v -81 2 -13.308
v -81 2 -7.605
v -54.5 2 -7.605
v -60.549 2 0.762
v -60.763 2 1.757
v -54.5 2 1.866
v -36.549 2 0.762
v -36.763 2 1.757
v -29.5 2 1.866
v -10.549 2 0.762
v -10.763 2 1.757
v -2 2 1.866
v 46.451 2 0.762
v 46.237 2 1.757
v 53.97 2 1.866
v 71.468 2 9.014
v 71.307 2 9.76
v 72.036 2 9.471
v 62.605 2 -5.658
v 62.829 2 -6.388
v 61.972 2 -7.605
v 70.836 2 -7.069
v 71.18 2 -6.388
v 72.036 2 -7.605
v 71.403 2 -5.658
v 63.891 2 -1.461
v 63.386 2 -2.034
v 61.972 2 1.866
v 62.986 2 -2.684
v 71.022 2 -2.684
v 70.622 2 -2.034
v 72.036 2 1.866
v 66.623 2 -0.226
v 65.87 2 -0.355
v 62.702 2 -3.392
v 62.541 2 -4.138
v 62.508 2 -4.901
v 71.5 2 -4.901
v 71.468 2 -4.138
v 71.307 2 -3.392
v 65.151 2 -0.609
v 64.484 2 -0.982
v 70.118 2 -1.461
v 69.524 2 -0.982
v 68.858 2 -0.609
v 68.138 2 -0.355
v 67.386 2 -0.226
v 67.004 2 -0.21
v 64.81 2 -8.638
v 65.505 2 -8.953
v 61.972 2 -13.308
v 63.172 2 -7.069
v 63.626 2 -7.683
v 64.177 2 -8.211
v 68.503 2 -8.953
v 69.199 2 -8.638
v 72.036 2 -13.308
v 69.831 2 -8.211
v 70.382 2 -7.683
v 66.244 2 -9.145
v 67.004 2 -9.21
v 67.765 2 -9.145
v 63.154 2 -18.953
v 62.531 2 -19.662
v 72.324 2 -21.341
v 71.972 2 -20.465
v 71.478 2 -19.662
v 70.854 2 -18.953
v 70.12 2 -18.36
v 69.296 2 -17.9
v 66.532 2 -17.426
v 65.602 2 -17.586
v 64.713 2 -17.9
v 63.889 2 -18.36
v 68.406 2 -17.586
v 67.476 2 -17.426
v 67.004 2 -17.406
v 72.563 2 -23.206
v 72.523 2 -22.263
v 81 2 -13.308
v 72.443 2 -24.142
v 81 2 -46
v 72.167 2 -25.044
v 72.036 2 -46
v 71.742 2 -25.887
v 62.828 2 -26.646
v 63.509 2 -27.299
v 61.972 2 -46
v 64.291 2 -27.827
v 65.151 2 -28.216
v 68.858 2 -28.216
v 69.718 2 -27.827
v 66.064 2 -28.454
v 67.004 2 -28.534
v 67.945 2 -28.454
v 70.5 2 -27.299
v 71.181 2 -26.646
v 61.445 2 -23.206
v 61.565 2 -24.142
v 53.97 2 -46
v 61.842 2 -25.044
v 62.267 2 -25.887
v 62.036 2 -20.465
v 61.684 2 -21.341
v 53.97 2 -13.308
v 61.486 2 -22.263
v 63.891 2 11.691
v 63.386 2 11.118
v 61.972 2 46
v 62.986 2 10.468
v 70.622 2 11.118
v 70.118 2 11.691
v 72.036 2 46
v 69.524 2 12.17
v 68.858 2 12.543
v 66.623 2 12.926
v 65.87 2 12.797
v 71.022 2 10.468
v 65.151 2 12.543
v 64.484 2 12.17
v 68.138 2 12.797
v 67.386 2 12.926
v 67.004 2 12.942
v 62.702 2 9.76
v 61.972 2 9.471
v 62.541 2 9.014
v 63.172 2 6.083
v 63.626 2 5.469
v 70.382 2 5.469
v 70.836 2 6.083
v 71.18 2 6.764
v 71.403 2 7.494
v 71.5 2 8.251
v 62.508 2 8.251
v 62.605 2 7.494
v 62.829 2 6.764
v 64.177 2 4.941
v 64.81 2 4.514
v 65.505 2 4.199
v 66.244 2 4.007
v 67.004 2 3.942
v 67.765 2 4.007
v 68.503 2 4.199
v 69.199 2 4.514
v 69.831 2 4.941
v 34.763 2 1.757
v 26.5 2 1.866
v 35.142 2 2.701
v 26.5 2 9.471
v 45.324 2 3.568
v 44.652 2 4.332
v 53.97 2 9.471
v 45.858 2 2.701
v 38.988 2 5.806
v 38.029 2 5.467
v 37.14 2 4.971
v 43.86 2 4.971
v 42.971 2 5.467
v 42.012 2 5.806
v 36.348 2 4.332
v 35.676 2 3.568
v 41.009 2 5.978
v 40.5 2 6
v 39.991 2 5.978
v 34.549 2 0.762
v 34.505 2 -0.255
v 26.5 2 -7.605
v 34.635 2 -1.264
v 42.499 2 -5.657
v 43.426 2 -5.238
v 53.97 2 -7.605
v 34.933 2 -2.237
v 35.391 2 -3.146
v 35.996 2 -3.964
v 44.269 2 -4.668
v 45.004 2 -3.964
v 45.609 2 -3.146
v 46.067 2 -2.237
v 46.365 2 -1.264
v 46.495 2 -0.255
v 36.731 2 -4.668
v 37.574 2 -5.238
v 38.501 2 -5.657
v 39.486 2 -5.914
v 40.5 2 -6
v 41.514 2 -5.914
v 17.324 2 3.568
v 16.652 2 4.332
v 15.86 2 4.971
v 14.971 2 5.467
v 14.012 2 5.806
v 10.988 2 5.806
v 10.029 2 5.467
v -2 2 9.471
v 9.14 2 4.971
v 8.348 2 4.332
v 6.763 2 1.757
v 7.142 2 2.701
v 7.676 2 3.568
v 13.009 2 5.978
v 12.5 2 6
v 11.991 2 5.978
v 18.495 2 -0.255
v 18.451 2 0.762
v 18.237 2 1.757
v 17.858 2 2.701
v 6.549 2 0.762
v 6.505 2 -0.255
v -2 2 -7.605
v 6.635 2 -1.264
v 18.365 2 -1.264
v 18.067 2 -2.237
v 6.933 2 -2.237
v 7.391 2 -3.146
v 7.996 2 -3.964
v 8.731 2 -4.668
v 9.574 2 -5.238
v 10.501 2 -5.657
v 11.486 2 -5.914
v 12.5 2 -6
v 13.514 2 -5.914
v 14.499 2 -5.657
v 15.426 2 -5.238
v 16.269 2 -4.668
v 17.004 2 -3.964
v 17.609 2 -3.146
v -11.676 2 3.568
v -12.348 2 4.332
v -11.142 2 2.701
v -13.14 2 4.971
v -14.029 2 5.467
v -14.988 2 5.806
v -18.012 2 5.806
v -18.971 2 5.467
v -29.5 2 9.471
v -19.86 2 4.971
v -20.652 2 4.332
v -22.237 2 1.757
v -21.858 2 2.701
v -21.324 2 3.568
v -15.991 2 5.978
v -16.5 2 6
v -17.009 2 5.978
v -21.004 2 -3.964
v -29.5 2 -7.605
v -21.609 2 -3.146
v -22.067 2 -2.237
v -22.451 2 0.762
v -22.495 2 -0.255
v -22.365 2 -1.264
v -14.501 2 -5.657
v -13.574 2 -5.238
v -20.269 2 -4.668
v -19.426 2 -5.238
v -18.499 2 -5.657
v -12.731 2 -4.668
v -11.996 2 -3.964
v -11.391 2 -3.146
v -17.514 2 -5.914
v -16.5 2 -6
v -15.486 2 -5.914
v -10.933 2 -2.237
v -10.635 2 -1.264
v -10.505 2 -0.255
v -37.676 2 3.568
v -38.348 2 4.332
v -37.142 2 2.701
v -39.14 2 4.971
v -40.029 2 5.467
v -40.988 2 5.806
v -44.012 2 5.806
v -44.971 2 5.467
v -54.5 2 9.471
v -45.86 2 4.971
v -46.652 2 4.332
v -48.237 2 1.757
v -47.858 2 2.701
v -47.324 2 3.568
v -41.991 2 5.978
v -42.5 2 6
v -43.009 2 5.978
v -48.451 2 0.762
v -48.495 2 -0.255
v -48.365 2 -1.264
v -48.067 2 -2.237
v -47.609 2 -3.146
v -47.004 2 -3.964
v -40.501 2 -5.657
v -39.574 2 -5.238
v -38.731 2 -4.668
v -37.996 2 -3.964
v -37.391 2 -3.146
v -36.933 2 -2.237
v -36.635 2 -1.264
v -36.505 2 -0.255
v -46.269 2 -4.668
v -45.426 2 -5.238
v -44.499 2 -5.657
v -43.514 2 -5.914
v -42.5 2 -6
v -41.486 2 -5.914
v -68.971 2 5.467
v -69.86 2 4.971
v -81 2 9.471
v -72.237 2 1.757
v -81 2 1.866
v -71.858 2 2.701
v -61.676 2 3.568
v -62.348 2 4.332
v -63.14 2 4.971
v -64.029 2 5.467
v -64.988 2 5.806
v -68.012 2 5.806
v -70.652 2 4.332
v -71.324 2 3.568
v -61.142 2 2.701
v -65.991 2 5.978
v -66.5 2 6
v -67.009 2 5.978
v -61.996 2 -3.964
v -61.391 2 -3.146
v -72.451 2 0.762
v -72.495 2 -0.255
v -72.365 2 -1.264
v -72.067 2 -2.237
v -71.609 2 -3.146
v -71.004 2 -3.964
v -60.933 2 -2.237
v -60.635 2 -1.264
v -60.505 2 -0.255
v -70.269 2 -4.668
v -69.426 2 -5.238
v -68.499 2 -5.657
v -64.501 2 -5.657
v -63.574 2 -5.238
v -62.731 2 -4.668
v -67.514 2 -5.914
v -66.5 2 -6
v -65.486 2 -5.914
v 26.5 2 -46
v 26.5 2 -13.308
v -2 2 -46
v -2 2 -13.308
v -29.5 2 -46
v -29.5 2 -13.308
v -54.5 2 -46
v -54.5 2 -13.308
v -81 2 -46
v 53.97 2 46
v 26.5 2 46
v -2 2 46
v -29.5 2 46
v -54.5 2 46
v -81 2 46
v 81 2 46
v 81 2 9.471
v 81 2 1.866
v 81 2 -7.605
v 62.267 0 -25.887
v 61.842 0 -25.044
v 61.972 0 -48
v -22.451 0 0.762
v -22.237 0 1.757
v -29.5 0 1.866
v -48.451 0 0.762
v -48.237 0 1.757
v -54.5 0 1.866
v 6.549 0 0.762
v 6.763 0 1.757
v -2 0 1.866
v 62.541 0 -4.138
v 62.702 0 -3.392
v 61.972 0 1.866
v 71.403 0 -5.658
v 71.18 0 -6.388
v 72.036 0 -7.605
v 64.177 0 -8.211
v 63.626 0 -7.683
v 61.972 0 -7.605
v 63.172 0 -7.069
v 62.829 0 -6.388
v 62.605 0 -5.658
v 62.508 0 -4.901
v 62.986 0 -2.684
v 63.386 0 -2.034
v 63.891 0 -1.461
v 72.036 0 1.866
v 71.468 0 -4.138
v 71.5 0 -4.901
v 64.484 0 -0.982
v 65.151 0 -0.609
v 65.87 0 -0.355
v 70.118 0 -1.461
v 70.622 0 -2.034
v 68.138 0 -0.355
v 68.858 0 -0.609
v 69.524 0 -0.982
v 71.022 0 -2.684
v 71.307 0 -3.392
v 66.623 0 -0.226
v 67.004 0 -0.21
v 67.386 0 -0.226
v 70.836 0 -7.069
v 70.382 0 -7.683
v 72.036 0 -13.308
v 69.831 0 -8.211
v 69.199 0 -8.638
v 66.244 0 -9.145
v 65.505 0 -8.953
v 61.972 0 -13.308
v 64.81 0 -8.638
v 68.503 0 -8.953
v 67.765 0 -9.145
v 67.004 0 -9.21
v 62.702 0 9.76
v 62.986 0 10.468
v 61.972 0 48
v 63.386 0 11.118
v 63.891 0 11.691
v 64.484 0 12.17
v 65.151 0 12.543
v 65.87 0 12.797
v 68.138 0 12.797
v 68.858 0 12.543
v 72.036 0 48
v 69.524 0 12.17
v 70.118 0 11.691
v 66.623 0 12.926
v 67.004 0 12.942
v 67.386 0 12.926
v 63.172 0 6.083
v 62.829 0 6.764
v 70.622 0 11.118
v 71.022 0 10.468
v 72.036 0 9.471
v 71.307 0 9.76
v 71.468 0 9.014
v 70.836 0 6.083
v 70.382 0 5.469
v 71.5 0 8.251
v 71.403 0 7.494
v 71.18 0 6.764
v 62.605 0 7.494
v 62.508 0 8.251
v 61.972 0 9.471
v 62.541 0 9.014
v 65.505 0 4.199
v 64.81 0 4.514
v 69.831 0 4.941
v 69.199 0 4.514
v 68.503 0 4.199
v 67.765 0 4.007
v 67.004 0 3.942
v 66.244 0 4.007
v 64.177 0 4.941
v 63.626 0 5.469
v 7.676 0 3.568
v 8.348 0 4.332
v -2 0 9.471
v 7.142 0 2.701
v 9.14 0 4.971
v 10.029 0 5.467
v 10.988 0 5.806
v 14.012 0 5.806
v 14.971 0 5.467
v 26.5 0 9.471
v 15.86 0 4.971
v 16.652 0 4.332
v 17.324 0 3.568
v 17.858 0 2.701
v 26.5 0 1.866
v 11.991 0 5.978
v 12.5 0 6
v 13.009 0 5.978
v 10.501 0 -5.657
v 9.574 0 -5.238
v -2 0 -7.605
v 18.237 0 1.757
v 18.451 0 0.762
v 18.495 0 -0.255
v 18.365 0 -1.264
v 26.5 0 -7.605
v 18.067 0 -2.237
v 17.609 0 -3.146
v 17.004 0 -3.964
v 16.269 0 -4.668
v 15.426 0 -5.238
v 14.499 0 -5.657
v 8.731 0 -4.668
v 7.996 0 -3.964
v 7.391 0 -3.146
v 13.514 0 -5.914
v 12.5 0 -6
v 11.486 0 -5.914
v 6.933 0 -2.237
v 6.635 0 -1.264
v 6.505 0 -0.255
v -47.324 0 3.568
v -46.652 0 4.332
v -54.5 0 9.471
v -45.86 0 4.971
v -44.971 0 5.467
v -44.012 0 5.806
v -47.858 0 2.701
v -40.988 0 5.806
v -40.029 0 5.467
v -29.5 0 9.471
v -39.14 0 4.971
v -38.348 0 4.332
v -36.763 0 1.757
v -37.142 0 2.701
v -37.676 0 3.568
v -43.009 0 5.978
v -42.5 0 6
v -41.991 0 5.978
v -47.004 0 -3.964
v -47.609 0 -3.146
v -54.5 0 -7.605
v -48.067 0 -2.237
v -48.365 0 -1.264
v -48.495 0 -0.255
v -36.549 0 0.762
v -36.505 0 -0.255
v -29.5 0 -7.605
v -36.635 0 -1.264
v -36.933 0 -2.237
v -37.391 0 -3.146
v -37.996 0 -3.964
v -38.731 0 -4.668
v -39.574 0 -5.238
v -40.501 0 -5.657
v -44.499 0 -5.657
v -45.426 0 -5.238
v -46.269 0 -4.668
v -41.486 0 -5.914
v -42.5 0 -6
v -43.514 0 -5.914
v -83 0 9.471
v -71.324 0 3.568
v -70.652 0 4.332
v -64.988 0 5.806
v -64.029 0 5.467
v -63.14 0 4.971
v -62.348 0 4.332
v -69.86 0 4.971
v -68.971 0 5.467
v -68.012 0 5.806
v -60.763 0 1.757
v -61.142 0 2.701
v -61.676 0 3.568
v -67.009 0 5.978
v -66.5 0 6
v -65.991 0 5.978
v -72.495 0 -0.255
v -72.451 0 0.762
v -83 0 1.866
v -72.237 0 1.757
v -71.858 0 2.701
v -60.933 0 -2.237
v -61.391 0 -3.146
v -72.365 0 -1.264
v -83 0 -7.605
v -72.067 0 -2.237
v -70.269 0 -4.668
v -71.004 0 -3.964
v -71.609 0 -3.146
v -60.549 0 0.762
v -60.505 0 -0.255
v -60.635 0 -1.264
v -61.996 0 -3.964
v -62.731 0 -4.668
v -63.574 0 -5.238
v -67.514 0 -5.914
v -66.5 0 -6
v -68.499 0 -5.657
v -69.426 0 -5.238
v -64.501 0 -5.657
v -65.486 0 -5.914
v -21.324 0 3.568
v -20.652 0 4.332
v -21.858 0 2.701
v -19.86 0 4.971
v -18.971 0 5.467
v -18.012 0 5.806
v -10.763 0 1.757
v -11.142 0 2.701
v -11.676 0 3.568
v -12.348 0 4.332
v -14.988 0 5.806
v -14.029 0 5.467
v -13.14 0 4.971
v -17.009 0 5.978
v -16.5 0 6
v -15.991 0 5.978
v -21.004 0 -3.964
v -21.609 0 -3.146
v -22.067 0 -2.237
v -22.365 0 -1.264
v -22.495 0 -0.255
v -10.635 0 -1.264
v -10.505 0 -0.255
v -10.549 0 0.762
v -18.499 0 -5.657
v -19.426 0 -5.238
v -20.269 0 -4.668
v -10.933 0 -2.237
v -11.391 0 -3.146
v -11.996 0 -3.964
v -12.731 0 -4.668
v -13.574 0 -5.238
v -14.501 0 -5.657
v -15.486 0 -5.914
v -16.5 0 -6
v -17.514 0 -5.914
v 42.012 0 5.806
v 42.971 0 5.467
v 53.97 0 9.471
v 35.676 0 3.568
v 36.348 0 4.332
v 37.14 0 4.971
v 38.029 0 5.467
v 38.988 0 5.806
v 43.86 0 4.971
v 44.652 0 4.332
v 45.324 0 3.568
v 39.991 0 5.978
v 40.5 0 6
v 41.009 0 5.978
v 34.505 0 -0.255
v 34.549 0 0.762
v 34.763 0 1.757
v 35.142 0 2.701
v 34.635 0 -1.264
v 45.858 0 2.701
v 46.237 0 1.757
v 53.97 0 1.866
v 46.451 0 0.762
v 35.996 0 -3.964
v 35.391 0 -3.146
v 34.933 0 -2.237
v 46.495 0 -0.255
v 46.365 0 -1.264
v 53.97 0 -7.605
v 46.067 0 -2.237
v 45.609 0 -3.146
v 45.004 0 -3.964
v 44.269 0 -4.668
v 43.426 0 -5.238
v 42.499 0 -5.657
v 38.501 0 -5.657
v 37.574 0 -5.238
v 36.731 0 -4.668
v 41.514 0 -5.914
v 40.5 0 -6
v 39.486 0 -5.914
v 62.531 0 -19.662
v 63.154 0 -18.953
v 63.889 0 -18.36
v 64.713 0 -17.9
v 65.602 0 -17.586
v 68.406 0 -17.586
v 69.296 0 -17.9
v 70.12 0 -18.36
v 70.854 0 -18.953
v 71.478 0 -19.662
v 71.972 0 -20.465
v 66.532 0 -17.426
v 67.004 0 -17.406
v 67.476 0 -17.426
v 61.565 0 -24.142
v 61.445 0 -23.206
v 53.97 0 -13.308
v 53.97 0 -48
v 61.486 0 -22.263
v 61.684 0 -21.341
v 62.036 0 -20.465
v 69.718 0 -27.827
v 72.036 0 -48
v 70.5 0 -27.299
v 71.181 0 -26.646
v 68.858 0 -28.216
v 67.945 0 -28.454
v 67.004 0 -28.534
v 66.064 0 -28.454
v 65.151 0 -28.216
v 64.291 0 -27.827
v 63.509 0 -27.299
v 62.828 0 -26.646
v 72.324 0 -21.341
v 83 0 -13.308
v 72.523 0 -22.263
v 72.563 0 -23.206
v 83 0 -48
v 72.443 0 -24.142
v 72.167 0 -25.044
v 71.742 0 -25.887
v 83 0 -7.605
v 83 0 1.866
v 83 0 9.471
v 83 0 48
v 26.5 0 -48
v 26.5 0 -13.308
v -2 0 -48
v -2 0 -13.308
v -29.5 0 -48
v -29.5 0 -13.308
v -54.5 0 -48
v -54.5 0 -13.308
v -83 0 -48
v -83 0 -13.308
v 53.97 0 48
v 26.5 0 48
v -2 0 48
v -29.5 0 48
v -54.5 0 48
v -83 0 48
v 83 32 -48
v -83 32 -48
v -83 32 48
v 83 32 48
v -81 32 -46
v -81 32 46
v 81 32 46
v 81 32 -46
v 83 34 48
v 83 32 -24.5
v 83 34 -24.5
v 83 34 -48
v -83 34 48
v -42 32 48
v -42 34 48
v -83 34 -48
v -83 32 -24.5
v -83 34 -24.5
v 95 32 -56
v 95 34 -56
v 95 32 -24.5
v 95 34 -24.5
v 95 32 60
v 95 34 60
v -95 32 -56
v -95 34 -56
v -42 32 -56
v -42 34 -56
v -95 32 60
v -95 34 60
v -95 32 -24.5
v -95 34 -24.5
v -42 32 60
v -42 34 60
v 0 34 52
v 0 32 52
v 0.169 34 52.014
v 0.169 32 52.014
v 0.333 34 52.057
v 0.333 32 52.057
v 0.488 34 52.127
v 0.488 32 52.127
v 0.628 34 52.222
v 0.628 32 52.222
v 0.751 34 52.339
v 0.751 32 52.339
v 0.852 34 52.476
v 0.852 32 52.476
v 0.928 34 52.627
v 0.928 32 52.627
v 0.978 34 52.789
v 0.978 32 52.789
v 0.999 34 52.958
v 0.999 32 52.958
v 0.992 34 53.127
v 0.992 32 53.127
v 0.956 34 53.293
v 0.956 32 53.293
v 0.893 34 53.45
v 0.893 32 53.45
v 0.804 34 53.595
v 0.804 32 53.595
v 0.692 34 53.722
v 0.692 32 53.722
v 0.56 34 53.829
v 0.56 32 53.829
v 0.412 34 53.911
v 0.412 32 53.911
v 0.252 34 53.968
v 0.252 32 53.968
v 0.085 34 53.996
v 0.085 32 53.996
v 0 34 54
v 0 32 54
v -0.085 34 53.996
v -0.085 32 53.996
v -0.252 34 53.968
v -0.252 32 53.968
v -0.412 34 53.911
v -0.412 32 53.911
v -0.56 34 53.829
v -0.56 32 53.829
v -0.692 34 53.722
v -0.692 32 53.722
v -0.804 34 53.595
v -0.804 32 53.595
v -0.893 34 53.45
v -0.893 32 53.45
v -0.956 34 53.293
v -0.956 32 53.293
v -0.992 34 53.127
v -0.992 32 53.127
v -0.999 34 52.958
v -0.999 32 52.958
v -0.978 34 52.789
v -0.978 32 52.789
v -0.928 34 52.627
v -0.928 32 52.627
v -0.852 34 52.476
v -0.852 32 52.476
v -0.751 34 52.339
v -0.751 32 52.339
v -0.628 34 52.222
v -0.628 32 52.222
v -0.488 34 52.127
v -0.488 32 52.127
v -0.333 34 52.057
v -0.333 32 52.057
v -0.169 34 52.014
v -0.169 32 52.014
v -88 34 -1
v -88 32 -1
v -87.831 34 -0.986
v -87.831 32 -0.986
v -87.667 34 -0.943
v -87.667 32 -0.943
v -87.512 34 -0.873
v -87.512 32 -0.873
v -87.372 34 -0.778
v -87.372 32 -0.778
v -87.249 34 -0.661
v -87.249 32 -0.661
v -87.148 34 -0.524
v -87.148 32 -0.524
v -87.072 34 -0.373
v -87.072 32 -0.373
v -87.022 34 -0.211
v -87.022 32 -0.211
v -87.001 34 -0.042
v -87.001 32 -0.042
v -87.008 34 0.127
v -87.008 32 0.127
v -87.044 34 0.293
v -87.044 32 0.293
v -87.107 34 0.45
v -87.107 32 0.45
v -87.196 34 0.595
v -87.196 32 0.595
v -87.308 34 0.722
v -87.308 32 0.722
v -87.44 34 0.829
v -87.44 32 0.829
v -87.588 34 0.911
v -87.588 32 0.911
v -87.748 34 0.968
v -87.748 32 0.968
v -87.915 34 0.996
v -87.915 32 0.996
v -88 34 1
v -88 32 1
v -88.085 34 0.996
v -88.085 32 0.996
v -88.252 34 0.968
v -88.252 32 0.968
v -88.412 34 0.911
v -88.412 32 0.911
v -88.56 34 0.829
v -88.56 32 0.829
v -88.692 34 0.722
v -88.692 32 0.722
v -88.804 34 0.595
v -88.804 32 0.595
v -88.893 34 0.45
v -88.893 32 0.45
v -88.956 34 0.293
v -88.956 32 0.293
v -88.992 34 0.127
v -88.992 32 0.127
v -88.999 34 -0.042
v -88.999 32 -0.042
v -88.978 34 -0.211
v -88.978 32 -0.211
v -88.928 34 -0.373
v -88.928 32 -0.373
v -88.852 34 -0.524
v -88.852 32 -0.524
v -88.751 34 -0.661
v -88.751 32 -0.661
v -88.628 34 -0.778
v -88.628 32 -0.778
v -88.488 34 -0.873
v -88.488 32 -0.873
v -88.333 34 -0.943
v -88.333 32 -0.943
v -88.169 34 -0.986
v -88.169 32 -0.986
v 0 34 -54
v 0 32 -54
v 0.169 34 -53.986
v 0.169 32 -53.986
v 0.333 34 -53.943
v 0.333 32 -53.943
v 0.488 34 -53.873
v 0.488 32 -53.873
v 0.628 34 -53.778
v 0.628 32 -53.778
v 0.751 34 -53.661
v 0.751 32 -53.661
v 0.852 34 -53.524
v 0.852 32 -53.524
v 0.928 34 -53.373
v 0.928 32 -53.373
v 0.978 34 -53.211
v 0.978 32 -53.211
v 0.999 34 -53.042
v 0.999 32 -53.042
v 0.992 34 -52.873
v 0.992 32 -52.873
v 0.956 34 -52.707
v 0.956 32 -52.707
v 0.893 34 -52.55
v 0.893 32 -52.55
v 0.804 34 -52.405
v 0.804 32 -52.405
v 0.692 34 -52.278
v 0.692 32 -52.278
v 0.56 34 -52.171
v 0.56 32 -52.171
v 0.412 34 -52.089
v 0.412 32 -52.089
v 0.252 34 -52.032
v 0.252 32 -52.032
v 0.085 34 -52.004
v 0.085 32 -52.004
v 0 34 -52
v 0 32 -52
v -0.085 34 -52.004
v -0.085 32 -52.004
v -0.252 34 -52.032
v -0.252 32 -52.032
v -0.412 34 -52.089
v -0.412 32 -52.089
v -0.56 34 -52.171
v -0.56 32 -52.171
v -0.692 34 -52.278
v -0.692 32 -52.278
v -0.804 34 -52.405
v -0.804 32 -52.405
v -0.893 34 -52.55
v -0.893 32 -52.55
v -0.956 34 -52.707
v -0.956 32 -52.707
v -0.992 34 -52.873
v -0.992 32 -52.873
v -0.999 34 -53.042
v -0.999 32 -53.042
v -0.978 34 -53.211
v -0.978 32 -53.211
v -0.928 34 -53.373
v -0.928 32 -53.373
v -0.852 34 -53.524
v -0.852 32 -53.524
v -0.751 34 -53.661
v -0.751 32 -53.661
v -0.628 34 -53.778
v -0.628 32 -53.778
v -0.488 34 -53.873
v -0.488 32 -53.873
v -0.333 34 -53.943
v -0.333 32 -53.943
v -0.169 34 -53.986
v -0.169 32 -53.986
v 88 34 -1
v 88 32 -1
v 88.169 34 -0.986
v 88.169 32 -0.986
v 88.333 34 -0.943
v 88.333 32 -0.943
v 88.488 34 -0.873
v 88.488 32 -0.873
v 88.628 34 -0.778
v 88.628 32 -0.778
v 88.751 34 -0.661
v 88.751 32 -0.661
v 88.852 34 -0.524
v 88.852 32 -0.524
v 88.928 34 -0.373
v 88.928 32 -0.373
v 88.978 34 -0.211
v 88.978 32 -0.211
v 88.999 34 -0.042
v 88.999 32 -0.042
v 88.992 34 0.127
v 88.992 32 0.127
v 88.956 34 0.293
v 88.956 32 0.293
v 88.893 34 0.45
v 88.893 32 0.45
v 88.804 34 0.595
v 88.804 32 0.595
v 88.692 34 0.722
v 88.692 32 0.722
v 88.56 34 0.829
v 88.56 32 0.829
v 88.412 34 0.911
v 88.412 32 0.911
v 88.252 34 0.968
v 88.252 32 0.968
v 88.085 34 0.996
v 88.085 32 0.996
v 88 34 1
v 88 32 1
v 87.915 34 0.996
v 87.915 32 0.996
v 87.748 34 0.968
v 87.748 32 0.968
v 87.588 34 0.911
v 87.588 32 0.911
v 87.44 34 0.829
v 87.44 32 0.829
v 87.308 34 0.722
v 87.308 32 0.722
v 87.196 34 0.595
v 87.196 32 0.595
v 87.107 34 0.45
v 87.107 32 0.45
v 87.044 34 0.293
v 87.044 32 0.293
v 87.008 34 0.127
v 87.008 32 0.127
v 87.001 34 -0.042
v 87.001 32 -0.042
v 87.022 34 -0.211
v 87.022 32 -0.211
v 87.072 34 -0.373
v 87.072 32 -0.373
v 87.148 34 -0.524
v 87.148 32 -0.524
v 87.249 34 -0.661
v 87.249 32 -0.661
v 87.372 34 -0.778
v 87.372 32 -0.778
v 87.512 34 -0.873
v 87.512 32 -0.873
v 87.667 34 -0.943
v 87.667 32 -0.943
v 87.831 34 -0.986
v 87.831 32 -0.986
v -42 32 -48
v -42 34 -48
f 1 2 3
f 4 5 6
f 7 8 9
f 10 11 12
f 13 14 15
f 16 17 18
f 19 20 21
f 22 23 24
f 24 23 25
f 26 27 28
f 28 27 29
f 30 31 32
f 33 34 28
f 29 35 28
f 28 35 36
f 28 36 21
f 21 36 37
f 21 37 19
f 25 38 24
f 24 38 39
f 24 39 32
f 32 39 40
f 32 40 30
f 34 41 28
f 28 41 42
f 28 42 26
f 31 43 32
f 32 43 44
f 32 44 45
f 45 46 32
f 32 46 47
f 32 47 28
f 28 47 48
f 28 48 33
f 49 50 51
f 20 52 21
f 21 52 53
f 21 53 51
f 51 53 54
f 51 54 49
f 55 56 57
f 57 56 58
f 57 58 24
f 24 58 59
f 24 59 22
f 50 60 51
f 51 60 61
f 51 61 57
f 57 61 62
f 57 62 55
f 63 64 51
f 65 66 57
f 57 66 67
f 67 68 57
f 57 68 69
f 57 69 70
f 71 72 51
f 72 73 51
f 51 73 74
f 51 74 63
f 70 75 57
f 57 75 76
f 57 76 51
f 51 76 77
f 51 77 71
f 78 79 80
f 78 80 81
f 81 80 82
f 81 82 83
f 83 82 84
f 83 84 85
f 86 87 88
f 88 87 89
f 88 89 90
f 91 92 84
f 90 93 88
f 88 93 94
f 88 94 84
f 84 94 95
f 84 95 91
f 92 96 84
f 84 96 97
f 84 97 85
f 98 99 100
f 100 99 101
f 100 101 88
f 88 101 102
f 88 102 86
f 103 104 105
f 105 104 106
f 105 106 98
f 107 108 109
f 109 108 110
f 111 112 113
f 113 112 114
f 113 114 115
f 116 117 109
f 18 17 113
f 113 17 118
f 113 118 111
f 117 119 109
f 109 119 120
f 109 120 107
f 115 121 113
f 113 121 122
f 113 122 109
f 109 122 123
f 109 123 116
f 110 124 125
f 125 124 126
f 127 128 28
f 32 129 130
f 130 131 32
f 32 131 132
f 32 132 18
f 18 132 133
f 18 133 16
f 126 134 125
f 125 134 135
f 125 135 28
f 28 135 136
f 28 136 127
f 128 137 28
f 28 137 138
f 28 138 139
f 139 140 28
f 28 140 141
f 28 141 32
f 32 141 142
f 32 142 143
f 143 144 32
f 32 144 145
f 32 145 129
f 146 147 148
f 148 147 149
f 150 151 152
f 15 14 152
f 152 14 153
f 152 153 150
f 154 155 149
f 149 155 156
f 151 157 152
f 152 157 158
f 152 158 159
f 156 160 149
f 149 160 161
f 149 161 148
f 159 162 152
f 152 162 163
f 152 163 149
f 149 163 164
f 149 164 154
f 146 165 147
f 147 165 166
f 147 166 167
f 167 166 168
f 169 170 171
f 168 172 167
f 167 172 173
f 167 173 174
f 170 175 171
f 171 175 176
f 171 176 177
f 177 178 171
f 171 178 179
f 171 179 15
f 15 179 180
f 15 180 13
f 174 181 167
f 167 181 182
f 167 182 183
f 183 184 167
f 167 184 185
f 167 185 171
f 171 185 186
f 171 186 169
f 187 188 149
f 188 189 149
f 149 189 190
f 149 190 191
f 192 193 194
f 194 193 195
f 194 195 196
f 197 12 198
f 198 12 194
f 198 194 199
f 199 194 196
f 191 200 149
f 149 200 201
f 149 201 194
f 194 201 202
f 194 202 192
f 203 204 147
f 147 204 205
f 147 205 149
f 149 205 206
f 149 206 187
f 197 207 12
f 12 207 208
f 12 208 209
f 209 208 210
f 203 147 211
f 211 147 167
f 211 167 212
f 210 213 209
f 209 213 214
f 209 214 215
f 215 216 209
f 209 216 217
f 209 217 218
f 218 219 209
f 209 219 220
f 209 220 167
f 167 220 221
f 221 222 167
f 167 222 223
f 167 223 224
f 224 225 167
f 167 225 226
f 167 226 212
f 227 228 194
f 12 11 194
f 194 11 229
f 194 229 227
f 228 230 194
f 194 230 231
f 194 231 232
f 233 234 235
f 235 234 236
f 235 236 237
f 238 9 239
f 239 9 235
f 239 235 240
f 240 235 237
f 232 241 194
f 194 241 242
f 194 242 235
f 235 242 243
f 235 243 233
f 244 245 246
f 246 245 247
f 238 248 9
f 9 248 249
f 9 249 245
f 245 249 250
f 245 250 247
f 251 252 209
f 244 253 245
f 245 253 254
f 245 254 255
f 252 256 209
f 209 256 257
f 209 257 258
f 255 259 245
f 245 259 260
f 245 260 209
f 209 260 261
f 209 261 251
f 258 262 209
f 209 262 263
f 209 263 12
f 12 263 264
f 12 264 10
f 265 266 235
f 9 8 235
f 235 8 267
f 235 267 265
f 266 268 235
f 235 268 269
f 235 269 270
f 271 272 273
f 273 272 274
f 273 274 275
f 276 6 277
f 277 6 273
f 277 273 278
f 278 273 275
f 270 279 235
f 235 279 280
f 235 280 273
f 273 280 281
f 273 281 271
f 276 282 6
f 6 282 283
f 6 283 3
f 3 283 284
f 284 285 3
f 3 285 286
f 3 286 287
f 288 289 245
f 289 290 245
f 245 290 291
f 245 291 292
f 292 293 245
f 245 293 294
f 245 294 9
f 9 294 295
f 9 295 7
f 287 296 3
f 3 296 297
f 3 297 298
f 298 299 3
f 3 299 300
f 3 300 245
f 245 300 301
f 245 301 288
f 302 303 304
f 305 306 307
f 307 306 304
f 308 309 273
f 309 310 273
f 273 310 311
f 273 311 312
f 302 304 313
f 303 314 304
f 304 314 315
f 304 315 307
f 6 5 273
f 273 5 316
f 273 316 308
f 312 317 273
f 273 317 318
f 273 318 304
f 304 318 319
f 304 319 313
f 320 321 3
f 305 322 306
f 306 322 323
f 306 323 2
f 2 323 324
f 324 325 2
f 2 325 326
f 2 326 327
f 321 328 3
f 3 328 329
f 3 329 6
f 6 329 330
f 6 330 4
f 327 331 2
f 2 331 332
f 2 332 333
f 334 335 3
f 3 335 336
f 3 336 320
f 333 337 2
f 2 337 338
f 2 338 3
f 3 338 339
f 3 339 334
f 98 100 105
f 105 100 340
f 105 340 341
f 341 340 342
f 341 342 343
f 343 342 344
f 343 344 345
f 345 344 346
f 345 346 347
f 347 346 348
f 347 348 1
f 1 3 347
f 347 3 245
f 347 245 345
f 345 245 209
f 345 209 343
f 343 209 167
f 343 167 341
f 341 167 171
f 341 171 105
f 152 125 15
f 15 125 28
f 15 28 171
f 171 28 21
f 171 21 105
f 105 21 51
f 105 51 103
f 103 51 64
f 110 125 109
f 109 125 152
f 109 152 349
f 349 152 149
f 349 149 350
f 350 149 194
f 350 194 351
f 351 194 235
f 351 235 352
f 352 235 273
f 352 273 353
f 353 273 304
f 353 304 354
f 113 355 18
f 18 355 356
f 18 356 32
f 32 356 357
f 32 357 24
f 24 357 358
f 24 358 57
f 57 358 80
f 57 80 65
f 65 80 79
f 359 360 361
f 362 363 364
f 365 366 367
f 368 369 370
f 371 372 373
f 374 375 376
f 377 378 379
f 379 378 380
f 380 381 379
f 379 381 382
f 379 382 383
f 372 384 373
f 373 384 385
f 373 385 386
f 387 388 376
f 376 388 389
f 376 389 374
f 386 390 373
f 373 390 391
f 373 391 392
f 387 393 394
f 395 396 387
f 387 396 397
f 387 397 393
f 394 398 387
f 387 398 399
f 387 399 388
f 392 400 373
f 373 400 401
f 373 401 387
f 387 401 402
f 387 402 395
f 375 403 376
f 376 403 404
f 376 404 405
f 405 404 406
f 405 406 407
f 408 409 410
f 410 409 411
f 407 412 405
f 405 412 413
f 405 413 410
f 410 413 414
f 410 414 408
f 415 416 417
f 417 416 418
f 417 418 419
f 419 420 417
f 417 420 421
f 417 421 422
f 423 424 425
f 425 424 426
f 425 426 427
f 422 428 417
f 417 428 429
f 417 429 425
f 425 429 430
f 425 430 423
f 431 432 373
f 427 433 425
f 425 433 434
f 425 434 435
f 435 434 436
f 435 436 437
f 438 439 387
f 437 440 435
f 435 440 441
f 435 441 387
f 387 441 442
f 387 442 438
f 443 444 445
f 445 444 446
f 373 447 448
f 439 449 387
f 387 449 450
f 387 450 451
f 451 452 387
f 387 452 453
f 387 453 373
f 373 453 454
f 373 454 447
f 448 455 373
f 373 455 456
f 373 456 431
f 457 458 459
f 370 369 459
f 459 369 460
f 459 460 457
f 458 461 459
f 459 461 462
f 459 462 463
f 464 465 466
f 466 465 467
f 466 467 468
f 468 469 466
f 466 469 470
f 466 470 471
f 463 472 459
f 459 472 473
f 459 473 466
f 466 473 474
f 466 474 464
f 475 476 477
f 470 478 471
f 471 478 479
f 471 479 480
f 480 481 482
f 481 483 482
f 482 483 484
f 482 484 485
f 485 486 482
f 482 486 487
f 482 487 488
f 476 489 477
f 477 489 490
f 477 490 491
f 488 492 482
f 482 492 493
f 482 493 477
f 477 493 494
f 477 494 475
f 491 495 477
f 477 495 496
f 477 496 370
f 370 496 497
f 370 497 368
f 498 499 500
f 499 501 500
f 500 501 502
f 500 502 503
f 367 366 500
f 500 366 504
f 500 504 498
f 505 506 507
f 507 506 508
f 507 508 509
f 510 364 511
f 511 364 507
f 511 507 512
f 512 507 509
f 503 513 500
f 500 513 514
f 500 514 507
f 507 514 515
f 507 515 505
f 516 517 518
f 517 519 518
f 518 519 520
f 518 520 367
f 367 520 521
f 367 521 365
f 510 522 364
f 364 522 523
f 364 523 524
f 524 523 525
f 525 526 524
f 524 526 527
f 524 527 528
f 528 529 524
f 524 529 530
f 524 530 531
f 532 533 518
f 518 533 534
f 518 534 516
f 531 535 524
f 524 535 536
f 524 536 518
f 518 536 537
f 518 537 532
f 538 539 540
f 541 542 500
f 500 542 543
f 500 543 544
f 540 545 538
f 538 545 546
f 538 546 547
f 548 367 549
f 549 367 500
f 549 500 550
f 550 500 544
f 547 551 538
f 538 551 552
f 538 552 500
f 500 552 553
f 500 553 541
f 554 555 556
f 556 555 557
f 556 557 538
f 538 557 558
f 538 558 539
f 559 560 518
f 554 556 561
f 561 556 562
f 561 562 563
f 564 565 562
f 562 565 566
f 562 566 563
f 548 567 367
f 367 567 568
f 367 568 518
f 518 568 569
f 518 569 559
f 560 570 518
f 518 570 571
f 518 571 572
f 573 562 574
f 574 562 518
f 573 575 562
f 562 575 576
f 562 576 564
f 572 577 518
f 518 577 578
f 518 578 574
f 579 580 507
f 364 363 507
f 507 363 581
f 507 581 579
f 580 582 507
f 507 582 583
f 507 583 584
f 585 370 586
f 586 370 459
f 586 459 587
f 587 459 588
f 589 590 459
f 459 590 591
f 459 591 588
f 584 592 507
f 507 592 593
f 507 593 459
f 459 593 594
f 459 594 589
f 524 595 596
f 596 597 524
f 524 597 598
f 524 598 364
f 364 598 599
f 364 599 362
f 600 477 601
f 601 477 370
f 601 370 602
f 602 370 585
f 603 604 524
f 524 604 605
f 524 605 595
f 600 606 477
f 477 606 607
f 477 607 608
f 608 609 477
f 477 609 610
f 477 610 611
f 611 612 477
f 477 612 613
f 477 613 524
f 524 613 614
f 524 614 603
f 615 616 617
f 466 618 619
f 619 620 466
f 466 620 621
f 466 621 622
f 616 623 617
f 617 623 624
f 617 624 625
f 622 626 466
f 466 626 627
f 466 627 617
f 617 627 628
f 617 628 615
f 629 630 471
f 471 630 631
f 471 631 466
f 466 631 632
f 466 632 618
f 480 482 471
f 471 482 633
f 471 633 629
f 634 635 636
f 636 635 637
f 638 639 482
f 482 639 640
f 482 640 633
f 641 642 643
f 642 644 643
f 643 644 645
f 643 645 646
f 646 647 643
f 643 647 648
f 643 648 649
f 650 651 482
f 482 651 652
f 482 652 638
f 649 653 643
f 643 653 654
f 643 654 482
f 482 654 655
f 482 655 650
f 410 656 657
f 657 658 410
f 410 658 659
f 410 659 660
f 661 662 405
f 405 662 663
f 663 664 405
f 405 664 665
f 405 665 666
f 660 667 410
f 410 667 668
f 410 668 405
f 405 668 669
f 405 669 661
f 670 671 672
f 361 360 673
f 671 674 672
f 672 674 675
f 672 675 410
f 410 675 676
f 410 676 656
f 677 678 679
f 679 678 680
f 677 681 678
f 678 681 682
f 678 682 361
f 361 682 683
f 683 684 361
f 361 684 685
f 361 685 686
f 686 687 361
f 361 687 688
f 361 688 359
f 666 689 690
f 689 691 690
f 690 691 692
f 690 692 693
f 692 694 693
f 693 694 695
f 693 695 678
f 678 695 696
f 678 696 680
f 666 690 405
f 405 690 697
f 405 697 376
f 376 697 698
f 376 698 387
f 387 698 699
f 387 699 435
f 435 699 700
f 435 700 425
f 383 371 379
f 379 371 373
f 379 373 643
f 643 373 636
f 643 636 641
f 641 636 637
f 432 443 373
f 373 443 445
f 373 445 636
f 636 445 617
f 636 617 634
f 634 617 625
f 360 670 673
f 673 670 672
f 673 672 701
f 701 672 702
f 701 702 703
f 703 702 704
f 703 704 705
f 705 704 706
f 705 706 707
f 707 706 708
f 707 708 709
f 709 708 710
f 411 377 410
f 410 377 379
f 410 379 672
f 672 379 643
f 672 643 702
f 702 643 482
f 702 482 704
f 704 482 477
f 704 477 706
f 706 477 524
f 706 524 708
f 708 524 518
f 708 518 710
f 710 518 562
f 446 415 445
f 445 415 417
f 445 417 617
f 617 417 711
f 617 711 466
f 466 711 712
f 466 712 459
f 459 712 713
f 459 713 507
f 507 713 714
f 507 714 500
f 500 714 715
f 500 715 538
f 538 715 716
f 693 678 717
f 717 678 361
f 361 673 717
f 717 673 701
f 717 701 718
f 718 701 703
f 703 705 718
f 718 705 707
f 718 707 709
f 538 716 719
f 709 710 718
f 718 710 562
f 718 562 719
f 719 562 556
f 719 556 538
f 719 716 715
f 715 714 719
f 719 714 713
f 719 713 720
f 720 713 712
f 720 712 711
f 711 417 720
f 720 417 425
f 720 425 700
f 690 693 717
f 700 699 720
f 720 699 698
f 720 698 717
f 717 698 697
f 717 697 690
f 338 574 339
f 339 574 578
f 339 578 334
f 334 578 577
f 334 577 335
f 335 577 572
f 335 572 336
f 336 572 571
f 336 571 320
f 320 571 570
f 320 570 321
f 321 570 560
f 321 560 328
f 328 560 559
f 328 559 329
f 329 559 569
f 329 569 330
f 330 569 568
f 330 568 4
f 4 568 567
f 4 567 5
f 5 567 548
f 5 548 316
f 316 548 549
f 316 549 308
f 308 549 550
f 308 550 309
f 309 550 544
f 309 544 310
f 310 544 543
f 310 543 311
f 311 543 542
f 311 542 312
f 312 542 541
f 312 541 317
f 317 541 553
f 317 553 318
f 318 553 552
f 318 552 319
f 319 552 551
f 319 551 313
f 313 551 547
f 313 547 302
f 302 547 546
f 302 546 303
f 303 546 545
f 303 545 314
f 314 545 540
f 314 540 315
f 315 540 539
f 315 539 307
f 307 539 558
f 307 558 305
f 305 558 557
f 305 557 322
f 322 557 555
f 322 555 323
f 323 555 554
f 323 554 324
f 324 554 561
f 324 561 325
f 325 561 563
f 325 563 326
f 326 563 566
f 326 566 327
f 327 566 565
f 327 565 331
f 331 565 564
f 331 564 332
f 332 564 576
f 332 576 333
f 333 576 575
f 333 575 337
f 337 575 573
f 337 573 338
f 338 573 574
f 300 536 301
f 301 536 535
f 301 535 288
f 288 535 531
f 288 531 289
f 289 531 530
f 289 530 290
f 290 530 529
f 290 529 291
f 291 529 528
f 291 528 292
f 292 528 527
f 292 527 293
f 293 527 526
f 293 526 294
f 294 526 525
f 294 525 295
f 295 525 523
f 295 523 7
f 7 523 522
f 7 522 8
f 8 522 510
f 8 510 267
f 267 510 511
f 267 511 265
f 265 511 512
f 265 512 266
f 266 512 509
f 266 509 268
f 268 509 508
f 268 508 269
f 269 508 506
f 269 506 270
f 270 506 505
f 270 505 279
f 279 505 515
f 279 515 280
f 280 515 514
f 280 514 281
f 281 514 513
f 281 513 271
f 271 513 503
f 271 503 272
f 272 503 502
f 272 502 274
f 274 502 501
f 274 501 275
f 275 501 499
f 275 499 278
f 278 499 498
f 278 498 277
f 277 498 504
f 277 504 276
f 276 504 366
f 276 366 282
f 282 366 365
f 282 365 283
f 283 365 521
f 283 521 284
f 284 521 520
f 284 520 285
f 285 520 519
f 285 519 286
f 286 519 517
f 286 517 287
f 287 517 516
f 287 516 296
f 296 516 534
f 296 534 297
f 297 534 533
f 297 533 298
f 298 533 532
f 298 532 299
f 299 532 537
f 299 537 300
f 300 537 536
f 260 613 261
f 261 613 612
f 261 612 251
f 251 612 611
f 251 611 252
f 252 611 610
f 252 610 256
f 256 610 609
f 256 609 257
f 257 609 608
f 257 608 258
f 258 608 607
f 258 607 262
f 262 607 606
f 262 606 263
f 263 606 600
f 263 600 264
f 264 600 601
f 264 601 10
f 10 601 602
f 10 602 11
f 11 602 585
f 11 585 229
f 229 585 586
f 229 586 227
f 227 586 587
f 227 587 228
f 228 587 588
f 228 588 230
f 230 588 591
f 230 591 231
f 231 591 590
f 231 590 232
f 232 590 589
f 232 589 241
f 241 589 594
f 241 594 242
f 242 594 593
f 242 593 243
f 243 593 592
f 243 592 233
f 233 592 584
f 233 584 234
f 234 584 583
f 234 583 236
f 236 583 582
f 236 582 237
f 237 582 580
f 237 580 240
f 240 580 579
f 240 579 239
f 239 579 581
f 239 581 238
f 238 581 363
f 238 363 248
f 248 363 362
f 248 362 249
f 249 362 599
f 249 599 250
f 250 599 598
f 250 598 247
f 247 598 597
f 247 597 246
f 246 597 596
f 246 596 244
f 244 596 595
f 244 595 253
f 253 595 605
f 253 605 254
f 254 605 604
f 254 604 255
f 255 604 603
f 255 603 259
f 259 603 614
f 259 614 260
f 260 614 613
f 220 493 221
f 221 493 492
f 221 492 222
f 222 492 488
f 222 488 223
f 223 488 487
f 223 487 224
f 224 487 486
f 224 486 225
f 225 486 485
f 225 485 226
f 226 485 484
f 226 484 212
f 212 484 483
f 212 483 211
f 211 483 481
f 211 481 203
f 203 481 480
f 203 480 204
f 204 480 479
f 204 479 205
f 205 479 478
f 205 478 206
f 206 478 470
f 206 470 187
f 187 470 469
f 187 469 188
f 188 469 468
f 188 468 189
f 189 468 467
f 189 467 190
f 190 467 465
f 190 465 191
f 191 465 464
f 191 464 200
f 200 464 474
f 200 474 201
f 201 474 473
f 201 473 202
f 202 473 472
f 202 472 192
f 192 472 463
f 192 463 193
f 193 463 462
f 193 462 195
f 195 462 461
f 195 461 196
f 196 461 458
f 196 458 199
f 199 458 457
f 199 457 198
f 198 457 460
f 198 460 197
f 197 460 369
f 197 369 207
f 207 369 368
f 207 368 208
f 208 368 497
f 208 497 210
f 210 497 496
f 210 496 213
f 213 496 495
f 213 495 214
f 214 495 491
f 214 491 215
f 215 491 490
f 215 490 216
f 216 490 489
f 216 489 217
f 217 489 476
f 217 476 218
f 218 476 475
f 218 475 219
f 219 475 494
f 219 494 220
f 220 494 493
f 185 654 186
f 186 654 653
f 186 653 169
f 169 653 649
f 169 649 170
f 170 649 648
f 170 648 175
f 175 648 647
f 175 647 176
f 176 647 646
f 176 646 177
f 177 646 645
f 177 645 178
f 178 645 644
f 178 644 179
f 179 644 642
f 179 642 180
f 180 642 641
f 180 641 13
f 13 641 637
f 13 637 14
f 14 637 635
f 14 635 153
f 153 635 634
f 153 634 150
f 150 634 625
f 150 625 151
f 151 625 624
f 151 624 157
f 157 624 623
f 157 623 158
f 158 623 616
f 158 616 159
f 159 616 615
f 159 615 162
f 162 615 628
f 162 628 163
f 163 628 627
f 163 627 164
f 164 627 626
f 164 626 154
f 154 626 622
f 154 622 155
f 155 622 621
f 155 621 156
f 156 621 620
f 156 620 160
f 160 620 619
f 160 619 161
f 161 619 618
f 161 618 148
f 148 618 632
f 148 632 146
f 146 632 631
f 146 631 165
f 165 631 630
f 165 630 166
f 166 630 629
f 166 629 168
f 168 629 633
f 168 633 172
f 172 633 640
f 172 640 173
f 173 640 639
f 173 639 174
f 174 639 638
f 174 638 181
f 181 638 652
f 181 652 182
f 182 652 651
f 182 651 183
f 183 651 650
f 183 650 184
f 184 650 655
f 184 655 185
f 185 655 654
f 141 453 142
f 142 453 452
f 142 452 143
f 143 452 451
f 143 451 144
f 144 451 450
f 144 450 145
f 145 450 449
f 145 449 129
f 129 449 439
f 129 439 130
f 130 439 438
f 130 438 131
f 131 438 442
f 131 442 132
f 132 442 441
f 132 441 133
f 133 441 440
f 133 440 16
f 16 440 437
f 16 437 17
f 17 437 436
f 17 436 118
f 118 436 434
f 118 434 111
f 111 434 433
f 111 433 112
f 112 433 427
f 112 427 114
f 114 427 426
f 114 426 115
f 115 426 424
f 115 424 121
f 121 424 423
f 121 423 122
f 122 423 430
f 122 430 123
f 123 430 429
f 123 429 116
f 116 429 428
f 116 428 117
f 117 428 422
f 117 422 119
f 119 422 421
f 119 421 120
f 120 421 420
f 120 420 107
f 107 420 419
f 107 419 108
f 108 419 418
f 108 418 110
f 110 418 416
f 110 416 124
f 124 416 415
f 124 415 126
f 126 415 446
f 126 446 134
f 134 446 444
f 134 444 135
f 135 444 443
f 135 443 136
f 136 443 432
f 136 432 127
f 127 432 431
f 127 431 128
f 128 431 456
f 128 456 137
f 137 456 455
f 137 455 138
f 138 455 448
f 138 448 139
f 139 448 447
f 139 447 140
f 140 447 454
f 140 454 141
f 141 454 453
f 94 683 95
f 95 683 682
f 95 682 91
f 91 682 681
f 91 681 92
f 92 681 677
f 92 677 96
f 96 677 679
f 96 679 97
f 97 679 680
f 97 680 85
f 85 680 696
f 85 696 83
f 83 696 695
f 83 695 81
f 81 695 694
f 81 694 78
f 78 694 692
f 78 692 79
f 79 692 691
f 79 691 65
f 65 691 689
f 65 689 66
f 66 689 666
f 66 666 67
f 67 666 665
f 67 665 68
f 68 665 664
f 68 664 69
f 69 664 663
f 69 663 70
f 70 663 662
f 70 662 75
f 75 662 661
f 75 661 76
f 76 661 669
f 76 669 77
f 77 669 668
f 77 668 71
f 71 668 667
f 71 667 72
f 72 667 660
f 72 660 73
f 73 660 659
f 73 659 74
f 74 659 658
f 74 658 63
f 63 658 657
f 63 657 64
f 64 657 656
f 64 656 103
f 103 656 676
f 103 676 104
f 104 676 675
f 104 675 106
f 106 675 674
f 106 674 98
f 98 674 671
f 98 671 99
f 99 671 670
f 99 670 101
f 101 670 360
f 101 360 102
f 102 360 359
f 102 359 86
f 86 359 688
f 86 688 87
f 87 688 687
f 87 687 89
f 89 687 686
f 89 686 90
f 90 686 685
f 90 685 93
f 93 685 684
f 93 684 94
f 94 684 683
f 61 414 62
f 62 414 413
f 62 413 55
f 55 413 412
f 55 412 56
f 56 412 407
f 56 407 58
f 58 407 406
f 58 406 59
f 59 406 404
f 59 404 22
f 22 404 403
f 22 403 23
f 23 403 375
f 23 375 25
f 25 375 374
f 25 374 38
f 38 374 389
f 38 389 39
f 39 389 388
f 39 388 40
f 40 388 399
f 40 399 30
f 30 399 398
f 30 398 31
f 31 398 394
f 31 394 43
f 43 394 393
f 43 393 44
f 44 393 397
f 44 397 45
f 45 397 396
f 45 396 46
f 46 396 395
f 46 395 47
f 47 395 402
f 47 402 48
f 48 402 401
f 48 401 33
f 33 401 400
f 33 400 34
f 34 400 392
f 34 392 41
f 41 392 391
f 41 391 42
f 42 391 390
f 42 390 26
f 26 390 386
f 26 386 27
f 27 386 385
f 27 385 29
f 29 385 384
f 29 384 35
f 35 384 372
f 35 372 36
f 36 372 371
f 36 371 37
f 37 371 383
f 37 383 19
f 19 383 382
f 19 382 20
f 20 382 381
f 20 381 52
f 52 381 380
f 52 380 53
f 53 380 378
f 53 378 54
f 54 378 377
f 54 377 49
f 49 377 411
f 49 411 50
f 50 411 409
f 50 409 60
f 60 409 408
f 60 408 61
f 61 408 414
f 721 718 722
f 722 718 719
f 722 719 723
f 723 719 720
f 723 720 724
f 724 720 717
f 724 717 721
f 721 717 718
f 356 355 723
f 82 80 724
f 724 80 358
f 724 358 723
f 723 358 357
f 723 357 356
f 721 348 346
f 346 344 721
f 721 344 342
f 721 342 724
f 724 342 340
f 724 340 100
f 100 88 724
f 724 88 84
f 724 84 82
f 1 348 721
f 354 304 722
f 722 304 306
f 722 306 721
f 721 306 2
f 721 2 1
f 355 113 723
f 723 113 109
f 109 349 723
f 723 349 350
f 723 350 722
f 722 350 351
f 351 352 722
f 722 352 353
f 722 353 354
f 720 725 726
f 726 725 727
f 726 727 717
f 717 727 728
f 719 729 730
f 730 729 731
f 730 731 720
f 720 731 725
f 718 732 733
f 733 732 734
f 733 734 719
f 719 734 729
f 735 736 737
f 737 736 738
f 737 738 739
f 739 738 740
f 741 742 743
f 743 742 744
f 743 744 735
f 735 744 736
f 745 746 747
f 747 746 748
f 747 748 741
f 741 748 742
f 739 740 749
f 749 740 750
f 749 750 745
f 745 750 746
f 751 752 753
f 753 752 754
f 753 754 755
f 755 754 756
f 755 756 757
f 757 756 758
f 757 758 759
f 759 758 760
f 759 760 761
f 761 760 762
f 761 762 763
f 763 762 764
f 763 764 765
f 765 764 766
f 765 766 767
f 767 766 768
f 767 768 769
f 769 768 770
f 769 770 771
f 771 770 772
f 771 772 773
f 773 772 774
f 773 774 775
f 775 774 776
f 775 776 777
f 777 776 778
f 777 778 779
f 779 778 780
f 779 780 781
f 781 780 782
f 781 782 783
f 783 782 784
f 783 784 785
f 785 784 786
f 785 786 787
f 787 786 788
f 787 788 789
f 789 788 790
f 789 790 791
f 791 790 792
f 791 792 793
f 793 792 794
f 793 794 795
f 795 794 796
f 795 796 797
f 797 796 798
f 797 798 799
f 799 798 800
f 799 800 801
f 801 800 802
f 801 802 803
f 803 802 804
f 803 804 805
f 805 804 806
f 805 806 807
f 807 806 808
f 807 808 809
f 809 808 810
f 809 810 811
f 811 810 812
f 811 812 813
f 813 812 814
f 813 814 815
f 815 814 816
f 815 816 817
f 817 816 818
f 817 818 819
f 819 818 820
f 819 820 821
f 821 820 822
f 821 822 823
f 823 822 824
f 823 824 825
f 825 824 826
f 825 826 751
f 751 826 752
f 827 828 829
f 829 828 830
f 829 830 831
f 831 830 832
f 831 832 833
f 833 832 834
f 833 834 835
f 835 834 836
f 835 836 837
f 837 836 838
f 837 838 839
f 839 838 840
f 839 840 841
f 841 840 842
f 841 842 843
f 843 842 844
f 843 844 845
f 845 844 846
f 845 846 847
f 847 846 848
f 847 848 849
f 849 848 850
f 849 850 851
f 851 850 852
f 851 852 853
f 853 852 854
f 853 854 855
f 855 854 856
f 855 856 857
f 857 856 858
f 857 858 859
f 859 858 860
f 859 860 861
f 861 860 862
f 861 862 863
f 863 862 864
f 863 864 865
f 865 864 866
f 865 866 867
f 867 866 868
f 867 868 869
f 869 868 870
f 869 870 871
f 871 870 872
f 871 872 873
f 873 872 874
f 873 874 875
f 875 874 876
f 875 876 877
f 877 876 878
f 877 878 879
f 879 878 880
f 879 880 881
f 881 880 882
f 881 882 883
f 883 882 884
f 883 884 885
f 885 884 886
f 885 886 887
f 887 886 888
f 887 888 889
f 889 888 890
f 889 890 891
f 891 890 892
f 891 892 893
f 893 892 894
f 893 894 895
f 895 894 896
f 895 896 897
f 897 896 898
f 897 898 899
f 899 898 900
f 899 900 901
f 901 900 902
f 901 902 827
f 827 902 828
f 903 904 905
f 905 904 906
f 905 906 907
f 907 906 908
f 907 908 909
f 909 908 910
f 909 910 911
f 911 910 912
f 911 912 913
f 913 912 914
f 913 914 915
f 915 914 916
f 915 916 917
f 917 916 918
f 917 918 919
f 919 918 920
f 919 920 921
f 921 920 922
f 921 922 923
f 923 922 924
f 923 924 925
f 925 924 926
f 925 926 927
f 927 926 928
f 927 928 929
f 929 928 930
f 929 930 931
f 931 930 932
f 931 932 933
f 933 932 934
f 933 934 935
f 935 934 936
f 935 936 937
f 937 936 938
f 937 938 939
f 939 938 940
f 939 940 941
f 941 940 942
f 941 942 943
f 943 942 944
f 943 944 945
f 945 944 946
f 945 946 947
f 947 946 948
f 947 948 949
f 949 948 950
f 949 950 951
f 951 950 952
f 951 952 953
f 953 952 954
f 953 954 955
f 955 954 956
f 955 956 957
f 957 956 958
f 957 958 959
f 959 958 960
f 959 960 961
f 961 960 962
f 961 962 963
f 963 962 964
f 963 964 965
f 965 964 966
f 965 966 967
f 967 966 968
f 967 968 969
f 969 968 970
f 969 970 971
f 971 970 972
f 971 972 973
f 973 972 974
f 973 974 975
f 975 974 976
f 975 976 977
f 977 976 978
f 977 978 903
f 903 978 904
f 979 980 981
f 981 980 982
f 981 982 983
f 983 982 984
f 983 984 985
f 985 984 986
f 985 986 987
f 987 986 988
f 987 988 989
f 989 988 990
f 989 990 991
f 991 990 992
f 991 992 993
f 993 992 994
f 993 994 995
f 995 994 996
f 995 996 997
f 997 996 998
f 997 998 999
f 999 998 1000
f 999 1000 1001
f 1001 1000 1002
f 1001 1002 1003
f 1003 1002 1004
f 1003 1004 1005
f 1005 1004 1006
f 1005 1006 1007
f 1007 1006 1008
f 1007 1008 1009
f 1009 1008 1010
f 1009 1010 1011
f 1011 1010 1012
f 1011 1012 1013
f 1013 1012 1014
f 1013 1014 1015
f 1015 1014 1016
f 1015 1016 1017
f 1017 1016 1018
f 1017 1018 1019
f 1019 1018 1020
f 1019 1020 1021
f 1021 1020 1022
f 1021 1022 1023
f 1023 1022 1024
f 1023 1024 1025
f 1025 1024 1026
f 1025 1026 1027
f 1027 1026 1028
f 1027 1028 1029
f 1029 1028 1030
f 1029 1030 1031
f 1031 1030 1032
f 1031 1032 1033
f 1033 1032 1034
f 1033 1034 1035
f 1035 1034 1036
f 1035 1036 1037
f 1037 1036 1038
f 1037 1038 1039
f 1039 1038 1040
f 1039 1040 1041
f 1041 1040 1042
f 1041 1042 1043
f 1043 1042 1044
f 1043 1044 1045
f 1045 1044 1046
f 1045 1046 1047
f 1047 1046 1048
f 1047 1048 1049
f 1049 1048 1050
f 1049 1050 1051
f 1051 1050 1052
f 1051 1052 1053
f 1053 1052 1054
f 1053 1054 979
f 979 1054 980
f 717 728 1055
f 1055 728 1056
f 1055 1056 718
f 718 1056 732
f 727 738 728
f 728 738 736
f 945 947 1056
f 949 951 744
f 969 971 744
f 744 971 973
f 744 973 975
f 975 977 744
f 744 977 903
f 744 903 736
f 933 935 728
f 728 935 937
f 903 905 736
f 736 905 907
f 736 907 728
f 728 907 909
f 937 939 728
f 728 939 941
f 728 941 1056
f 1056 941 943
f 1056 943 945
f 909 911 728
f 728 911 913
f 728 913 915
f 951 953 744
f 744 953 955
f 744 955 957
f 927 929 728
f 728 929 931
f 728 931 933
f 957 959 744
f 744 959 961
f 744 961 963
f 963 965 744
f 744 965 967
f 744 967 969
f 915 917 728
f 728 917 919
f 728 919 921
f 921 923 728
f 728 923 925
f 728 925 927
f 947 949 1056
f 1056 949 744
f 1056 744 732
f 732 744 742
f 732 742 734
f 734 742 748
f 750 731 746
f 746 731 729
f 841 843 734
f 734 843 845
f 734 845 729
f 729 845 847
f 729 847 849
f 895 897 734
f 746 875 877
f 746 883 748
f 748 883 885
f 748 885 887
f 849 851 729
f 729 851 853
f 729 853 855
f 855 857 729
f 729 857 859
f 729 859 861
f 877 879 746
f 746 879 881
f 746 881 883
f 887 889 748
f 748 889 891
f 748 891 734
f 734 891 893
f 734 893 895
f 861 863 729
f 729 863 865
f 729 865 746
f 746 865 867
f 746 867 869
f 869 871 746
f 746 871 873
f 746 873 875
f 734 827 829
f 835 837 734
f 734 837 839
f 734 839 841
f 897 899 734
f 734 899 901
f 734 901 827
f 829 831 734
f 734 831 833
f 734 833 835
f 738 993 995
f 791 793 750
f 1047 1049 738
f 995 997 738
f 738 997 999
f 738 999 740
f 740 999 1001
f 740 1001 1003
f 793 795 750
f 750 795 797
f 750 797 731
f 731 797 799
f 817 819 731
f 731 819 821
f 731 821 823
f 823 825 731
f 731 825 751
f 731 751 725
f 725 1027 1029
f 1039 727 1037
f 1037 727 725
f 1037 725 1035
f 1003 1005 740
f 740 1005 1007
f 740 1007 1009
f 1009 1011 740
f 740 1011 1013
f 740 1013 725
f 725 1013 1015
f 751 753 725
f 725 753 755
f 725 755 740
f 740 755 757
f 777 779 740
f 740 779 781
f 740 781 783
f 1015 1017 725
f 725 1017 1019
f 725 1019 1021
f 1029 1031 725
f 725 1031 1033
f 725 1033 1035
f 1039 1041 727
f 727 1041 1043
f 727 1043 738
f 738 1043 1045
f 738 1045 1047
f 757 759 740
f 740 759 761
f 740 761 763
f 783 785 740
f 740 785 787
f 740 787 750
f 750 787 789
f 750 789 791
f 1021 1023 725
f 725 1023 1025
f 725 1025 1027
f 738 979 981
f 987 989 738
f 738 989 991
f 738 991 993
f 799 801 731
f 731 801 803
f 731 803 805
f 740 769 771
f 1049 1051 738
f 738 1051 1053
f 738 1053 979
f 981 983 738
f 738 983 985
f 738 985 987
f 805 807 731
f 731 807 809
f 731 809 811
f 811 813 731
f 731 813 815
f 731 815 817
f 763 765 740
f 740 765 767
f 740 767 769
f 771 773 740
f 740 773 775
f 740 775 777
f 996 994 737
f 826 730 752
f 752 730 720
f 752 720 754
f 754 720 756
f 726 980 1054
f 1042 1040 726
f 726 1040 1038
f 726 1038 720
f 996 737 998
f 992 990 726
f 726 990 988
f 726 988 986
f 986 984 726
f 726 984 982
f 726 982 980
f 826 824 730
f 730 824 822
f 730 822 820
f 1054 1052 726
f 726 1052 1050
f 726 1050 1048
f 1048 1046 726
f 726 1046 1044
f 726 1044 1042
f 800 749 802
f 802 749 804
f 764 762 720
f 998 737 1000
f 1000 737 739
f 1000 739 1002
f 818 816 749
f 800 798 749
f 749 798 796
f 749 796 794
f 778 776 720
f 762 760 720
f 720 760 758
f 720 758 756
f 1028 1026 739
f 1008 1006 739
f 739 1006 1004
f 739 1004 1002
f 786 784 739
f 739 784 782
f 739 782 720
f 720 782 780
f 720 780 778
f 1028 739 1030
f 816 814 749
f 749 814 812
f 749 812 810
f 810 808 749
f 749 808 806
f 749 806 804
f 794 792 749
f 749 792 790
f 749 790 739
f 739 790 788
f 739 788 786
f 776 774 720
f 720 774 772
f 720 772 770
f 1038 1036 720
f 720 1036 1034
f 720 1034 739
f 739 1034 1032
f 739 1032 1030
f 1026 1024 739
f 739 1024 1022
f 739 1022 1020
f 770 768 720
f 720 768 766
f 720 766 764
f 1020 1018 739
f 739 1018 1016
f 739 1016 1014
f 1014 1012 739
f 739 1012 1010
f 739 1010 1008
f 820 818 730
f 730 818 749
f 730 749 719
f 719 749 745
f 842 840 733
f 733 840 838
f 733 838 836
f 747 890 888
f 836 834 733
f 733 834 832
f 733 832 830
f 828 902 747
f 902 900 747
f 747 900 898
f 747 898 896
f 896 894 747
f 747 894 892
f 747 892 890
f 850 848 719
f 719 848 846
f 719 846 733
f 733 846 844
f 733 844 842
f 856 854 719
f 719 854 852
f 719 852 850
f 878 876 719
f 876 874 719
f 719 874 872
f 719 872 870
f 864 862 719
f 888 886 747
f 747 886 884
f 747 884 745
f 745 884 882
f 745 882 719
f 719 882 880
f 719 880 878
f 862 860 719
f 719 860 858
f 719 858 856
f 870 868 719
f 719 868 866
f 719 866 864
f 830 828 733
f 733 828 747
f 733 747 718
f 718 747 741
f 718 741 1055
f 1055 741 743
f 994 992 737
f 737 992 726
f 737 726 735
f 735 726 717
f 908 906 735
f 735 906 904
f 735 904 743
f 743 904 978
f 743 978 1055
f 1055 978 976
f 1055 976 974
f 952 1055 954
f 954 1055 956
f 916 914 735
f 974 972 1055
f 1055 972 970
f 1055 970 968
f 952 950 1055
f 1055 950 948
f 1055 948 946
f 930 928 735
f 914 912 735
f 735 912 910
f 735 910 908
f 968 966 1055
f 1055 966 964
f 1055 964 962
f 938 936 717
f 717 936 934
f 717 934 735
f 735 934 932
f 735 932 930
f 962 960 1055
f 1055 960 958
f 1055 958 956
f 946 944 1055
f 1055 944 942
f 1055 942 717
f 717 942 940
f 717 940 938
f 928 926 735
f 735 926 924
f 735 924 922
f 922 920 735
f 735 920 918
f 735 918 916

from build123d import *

# Parameters (mm, degrees)
SKETCH2_W           = 166
SKETCH2_H           = 96
SKETCH2_R           = 6
SKETCH2_R_2         = 4.5
SKETCH2_R_3         = 5.563835096
BOSS_EXTRUDE1_DEPTH = 2
SKETCH3_W           = 166
SKETCH3_H           = 96
SKETCH3_W_2         = 162
SKETCH3_H_2         = 92
BOSS_EXTRUDE2_DEPTH = 30
SKETCH4_W           = 190
SKETCH4_H           = 112
SKETCH4_R           = 1
SKETCH4_W_2         = 166
SKETCH4_H_2         = 96
SKETCH4_H_3         = 4
BOSS_EXTRUDE3_DEPTH = 2


with BuildPart() as part:
    # Sketch2 → Boss-Extrude1 (new body)
    with BuildSketch(Plane(origin=(0, 0, 0), x_dir=(1, 0, 0), z_dir=(0, 1, 0))):
        Rectangle(SKETCH2_W, SKETCH2_H)
        with Locations(Location((-66.5, 0, 0), (0, 0, 270))):
            Circle(SKETCH2_R, mode=Mode.SUBTRACT)
        with Locations(Location((-42.5, 0, 0), (0, 0, 270))):
            Circle(SKETCH2_R, mode=Mode.SUBTRACT)
        with Locations(Location((-16.5, 0, 0), (0, 0, 270))):
            Circle(SKETCH2_R, mode=Mode.SUBTRACT)
        with Locations(Location((12.5, 0, 0), (0, 0, 270))):
            Circle(SKETCH2_R, mode=Mode.SUBTRACT)
        with Locations(Location((40.5, 0, 0), (0, 0, 270))):
            Circle(SKETCH2_R, mode=Mode.SUBTRACT)
        with Locations(Location((67.004282655, 4.709850107, 0), (0, 0, 270))):
            Circle(SKETCH2_R_2, mode=Mode.SUBTRACT)
        with Locations(Location((67.004282655, -8.442184154, 0), (0, 0, 270))):
            Circle(SKETCH2_R_2, mode=Mode.SUBTRACT)
        with Locations(Location((67.004282655, 22.969944987, 0), (0, 0, 270))):
            Circle(SKETCH2_R_3, mode=Mode.SUBTRACT)
    extrude(amount=BOSS_EXTRUDE1_DEPTH)

    # Sketch3 → Boss-Extrude2 (add)
    with BuildSketch(Plane(origin=(0, 2, 0), x_dir=(1, 0, 0), z_dir=(0, 1, 0))):
        Rectangle(SKETCH3_W, SKETCH3_H)
        Rectangle(SKETCH3_W_2, SKETCH3_H_2, mode=Mode.SUBTRACT)
    extrude(amount=BOSS_EXTRUDE2_DEPTH)


with BuildPart() as body_2:
    # Sketch4 → Boss-Extrude3 (new body)
    # profile 1 of 2: a face of its own
    with BuildSketch(Plane(origin=(0, 32, 0), x_dir=(1, 0, 0), z_dir=(0, 1, 0))):
        Rectangle(SKETCH4_W, SKETCH4_H)
        with Locations(Location((88, 0, 0), (0, 0, 270))):
            Circle(SKETCH4_R, mode=Mode.SUBTRACT)
        with Locations(Location((0, 53, 0), (0, 0, 270))):
            Circle(SKETCH4_R, mode=Mode.SUBTRACT)
        with Locations(Location((-88, 0, 0), (0, 0, 270))):
            Circle(SKETCH4_R, mode=Mode.SUBTRACT)
        with Locations(Location((0, -53, 0), (0, 0, 270))):
            Circle(SKETCH4_R, mode=Mode.SUBTRACT)
        Rectangle(SKETCH4_W_2, SKETCH4_H_2, mode=Mode.SUBTRACT)
    # profile 2 of 2: a face of its own
    with BuildSketch(Plane(origin=(0, 32, 0), x_dir=(1, 0, 0), z_dir=(0, 1, 0))):
        with Locations((0, -58)):
            Rectangle(SKETCH4_W, SKETCH4_H_3)
    extrude(amount=BOSS_EXTRUDE3_DEPTH)


solid = Compound([part.part, body_2.part])
